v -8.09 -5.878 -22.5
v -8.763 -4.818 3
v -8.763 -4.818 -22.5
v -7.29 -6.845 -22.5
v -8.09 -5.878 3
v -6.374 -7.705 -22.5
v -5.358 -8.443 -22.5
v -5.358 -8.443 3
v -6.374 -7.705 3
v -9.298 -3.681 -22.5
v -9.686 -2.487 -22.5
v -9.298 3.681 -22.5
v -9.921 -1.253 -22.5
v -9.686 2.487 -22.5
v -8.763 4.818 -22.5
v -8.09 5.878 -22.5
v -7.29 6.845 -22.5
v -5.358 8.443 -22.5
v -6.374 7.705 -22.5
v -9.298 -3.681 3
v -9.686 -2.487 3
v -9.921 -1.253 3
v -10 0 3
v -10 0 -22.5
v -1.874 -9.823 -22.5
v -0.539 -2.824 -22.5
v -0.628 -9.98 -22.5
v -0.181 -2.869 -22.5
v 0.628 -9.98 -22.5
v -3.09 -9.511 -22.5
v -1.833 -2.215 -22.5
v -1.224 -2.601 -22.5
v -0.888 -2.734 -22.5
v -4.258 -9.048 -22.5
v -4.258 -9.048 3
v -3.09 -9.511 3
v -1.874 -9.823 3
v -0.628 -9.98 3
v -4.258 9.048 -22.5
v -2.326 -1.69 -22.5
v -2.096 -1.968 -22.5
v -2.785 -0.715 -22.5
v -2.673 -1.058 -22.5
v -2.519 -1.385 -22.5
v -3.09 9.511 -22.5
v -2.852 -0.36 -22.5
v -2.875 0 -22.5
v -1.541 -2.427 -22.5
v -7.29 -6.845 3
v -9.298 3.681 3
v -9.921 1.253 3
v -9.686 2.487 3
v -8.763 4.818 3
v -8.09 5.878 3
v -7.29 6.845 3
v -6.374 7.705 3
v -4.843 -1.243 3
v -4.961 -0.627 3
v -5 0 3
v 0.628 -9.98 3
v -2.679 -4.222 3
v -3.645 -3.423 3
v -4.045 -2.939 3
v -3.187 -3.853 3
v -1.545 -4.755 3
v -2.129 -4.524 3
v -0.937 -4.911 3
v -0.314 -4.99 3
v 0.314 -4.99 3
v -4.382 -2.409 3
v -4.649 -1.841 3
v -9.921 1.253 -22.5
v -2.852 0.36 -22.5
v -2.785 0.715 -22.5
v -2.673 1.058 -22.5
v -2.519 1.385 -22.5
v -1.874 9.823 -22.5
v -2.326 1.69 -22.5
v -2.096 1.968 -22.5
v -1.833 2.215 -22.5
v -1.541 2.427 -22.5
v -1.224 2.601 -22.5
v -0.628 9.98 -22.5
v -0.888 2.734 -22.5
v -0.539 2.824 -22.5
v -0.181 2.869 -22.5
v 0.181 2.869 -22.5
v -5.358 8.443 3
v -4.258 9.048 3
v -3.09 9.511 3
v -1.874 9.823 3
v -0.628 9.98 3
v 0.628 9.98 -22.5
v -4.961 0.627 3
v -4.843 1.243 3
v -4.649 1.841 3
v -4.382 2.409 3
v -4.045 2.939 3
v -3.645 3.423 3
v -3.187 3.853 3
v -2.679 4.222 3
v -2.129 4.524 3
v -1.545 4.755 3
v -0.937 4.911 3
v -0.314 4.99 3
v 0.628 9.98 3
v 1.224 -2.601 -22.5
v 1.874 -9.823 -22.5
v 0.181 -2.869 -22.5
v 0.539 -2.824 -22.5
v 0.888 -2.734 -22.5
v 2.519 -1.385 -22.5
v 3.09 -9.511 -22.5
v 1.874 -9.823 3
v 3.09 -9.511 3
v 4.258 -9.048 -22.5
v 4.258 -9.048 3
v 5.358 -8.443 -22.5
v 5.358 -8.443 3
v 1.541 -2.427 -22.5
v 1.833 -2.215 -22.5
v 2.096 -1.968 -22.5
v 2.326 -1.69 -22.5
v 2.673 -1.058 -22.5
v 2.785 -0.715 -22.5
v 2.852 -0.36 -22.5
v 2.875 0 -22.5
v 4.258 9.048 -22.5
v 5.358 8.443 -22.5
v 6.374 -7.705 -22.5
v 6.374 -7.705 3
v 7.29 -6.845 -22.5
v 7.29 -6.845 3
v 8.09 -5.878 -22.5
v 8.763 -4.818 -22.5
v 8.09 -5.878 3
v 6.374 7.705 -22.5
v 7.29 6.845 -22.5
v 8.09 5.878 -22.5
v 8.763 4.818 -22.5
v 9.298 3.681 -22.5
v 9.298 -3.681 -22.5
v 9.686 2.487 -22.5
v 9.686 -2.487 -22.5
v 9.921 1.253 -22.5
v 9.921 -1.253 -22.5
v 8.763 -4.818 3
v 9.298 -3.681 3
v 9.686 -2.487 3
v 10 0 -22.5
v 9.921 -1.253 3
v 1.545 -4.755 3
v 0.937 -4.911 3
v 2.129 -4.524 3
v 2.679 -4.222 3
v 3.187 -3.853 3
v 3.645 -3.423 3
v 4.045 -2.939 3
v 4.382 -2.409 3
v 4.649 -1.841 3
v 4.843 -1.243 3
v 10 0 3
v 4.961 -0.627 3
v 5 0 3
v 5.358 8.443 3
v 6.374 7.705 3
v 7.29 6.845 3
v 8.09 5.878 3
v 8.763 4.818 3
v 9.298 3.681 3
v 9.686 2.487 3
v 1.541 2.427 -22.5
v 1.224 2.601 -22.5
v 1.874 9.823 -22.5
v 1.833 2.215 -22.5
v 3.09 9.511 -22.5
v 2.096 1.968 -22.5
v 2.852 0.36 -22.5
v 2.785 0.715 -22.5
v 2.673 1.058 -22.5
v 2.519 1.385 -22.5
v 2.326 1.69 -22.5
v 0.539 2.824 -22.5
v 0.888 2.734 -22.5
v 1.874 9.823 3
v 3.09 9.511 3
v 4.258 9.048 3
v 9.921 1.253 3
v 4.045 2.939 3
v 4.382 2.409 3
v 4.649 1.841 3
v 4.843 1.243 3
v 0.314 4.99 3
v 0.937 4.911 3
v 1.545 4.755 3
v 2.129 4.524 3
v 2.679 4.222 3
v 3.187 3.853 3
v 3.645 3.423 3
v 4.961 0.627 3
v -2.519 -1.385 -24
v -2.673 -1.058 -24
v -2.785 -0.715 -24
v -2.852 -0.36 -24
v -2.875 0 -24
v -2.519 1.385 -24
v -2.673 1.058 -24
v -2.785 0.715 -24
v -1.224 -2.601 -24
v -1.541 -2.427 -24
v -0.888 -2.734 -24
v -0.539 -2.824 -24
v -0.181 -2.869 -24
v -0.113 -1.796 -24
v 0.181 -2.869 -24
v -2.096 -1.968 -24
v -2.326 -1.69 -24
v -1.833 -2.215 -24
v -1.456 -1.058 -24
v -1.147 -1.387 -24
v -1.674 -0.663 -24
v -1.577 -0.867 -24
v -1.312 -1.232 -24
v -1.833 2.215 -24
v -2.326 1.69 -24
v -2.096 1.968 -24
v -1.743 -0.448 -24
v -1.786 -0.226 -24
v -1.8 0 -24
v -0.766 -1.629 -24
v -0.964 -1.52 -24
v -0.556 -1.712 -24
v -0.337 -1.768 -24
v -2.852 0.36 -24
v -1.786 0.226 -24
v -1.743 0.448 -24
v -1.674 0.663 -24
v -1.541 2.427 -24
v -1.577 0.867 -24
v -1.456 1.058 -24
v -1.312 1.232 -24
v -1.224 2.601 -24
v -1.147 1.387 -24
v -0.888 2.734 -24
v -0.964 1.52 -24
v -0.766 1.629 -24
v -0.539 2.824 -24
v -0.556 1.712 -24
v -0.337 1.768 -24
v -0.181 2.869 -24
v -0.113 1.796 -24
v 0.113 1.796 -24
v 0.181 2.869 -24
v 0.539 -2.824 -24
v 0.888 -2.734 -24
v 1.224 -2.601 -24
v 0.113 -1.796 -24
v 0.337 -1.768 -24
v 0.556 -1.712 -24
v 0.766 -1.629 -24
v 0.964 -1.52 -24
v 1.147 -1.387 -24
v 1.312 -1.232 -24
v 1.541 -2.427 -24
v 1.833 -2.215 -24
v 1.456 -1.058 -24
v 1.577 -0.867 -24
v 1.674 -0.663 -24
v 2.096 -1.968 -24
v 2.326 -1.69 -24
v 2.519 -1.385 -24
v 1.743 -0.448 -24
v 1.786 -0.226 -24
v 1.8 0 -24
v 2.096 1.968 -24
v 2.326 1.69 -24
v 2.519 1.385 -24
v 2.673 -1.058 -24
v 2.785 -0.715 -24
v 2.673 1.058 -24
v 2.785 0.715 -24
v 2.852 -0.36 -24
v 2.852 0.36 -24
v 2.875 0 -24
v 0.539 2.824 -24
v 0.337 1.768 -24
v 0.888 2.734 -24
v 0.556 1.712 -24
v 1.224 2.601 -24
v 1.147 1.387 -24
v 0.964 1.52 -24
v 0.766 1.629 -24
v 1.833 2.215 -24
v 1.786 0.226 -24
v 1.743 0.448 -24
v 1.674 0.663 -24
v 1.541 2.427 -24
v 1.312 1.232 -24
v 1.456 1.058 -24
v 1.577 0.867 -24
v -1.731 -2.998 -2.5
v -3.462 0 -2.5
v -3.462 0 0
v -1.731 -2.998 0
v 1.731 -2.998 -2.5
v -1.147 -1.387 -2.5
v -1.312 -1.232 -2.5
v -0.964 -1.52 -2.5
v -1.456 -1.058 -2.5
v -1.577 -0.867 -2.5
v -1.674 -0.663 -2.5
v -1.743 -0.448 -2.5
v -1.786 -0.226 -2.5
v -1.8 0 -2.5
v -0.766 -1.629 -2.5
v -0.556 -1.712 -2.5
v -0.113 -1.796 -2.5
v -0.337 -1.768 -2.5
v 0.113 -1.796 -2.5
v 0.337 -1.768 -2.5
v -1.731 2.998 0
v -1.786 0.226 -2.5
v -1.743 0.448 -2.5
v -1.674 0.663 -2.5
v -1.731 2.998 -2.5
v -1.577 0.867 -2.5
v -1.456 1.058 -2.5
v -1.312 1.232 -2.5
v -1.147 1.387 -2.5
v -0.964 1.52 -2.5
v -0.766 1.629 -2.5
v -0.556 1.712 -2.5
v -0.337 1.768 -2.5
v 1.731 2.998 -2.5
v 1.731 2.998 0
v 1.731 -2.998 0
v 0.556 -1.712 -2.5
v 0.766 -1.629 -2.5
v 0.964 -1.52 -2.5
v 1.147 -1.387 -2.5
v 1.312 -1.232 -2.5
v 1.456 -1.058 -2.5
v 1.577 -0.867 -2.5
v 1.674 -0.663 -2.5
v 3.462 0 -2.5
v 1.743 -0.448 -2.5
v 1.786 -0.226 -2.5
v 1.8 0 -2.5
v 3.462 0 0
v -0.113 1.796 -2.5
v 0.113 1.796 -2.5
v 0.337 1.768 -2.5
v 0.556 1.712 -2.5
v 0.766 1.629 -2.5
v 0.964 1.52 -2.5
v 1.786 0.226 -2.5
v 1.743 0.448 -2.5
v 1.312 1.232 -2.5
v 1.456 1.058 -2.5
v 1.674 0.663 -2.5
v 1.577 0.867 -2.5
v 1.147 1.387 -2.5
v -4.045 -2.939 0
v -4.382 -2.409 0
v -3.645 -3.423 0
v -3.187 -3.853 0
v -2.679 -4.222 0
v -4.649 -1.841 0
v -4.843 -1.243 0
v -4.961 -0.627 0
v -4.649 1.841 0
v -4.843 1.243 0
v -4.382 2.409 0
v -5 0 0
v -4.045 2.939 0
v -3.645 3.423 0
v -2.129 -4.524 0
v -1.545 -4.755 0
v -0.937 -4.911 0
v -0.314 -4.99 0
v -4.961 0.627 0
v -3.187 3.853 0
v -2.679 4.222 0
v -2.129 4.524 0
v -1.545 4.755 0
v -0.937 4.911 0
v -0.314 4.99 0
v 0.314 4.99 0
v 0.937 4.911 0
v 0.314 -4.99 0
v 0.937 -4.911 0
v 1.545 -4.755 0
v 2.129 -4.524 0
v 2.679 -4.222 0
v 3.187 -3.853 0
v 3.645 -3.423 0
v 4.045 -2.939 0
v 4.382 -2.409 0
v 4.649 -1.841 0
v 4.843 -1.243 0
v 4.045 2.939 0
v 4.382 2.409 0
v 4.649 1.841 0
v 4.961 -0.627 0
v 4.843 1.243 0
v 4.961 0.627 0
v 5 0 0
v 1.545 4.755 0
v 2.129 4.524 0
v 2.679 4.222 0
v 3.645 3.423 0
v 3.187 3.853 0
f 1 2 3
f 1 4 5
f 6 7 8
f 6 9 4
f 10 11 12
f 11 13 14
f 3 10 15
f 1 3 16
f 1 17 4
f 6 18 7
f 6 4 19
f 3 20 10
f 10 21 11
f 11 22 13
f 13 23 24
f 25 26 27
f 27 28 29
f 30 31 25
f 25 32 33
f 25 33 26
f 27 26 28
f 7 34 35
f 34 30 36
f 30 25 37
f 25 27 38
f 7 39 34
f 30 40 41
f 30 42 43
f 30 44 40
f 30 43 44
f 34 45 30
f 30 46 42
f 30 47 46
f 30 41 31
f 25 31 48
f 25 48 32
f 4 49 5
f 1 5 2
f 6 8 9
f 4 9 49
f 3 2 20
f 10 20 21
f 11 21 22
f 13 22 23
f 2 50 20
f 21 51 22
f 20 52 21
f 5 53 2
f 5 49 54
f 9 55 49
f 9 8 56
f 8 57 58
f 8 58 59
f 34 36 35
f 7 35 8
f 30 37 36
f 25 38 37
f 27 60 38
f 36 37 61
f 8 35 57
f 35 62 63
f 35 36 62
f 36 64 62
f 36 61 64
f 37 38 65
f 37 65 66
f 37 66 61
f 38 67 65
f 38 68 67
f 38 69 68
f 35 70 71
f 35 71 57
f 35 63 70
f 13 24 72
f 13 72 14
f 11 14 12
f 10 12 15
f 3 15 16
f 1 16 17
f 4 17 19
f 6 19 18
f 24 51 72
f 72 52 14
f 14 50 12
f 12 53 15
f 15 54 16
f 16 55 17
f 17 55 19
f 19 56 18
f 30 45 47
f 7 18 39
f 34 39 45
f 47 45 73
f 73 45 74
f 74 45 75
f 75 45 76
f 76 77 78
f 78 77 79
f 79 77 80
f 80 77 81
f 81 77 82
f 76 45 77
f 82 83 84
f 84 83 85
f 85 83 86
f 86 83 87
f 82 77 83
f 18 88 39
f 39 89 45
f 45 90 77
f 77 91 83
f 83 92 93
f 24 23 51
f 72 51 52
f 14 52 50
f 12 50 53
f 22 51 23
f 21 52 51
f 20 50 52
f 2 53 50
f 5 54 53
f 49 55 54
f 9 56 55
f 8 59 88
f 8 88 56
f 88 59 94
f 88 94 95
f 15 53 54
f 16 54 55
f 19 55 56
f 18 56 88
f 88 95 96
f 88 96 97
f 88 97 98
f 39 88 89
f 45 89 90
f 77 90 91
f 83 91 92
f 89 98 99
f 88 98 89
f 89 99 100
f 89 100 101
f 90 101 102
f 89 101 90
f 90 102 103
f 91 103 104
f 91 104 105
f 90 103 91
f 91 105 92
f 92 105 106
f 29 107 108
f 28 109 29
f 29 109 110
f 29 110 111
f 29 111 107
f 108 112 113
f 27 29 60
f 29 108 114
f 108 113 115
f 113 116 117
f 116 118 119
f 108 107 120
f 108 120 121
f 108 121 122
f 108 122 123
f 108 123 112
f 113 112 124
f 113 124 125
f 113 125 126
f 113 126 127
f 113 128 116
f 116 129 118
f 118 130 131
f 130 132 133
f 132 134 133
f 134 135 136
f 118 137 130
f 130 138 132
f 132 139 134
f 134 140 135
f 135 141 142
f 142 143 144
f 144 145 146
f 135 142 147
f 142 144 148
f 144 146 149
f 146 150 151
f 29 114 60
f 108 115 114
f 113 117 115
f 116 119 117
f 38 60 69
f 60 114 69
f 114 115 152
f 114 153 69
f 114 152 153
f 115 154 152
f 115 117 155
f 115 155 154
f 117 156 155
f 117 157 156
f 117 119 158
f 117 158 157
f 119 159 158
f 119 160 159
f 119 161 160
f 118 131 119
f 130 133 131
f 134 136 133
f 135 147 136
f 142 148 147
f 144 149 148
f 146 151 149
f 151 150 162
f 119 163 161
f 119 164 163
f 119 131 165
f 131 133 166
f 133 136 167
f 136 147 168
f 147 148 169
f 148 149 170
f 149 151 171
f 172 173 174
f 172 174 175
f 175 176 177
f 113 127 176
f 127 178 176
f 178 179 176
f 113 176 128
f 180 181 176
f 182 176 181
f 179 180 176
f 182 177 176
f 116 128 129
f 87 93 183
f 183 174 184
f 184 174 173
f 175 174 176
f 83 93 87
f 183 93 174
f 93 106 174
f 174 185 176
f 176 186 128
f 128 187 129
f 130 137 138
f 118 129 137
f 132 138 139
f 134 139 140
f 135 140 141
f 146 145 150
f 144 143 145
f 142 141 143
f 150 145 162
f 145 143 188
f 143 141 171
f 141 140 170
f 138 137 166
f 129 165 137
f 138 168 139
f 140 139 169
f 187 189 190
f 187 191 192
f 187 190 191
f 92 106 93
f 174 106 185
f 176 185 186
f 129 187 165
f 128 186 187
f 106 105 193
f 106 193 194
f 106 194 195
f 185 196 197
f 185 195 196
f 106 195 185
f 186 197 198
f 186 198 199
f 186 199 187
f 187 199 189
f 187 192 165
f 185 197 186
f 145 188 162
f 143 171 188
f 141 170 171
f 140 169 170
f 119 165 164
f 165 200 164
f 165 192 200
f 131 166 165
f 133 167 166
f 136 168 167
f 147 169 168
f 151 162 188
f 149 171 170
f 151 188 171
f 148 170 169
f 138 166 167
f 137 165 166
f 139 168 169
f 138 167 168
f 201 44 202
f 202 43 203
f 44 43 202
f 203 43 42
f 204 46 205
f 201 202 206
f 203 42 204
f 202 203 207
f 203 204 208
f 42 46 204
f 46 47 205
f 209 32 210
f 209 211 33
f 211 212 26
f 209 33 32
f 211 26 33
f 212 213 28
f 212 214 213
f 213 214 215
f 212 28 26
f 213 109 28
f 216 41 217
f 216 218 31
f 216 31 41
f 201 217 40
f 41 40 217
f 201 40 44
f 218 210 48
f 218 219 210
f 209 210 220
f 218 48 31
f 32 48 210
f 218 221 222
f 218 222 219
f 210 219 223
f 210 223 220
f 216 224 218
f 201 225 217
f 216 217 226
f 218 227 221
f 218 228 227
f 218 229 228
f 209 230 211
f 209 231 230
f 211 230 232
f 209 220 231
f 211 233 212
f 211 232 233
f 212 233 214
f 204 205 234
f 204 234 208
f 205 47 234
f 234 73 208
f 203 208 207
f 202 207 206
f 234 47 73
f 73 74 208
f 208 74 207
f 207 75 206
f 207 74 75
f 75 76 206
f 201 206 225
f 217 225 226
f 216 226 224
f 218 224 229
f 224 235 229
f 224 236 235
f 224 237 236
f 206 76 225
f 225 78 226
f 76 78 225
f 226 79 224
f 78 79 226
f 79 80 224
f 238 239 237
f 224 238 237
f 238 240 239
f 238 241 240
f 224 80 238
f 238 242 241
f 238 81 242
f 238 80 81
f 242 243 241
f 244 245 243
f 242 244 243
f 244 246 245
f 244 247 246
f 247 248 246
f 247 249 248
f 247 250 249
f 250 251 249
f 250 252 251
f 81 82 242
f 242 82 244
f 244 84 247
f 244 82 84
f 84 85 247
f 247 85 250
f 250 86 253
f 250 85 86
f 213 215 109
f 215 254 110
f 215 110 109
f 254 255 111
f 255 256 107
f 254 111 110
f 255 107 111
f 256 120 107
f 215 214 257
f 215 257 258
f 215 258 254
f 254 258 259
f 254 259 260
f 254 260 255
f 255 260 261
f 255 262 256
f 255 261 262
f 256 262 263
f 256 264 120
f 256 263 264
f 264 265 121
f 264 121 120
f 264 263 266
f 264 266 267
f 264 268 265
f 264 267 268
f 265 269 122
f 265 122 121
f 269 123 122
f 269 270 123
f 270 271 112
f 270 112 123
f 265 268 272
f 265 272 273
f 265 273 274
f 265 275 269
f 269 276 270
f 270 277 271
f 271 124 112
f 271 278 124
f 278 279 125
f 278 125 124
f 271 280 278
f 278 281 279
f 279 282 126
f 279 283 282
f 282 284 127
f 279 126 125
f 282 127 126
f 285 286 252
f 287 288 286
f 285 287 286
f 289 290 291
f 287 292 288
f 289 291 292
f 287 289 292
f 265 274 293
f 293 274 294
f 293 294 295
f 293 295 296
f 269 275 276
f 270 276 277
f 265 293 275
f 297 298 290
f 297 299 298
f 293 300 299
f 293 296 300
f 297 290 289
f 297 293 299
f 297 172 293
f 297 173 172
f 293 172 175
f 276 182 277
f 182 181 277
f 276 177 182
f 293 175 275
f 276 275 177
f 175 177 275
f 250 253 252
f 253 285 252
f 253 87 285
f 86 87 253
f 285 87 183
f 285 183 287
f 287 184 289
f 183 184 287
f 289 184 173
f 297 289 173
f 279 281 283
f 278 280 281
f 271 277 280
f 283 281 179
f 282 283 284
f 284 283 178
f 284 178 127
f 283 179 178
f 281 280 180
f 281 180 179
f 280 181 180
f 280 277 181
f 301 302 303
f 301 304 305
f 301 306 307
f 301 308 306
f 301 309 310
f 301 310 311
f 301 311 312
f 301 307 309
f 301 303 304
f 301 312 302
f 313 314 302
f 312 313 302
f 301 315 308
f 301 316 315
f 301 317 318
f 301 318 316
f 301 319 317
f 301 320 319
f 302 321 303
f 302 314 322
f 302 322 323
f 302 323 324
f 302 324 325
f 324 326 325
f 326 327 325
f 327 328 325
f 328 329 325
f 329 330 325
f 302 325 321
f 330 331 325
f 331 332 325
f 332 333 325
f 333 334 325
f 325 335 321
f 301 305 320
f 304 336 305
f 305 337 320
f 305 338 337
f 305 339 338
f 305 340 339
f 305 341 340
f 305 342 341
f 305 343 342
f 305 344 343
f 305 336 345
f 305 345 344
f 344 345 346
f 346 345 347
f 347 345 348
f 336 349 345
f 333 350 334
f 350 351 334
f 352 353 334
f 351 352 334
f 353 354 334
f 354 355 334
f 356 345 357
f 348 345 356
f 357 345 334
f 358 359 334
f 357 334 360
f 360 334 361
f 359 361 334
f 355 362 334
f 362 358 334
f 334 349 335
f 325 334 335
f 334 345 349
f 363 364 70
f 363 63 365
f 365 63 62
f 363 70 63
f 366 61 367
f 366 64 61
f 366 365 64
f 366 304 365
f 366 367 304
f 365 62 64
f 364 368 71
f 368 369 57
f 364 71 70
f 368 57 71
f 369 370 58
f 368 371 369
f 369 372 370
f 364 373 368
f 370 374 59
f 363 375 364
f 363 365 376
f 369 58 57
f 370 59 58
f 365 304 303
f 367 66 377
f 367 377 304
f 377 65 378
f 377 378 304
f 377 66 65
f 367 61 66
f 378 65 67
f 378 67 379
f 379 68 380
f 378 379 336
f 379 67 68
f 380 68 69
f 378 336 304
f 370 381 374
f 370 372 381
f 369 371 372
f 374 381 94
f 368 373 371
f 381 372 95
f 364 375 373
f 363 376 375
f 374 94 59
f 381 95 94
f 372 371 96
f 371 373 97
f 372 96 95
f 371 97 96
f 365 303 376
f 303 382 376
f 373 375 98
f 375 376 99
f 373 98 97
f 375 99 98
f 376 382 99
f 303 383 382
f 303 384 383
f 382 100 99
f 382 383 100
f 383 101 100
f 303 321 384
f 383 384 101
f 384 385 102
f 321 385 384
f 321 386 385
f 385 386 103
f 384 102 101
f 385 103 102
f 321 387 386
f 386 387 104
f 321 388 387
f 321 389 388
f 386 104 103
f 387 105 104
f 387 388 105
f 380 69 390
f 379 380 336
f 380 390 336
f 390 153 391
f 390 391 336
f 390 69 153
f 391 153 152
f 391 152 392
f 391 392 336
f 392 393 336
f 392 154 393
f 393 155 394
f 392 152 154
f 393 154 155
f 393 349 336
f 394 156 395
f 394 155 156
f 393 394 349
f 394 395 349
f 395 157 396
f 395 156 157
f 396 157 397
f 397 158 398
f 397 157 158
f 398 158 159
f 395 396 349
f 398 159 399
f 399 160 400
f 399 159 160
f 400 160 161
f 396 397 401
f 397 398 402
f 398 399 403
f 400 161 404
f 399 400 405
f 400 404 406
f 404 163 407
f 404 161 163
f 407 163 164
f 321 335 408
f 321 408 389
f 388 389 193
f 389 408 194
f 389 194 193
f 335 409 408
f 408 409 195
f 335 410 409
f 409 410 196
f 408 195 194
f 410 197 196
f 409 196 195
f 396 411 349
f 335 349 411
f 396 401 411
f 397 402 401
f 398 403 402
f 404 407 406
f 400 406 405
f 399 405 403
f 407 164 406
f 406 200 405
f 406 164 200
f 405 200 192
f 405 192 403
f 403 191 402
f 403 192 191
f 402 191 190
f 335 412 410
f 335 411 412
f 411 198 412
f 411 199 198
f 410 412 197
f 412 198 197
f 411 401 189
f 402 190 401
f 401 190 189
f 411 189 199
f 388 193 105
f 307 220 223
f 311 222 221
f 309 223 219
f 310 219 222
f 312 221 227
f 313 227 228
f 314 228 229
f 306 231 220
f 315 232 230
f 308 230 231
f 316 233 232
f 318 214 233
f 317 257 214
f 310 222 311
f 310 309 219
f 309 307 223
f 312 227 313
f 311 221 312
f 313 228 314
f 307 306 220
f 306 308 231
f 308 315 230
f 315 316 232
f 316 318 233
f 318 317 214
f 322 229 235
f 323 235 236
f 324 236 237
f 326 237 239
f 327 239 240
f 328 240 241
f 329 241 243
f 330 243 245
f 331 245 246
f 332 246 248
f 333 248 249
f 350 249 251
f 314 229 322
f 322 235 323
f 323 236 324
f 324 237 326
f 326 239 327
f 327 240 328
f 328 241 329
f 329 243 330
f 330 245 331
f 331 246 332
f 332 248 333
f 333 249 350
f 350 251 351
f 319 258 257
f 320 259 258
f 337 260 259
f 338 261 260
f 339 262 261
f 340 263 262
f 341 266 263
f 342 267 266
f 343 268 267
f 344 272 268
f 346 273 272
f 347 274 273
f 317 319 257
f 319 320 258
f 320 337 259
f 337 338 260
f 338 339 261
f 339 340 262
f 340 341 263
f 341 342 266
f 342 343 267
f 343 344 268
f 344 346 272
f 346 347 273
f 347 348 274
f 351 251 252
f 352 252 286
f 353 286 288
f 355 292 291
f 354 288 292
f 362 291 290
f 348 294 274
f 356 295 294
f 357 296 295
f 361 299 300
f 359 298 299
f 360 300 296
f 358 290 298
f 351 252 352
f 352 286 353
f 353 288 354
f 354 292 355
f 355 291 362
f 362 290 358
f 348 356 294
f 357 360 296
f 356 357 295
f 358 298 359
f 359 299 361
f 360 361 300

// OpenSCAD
$fn = 50;

difference() {
	union() {
		translate(v = [0, 0, -22.5]) {
			cylinder(h = 25.5, r = 10.0);
		}
		#translate(v = [0, 0, -24.0]) {
			cylinder(h = 24, r = 2.875);
		}
	}
	union() {
		translate(v = [0, 0, 0]) {
			rotate(a = [0, 0, 0]) {
				difference() {
					union() {
						translate(v = [0, 0, -2.5]) {
							linear_extrude(height = 2.5) {
								polygon(points = [[3.4619999999999997, 0.0], [1.7310000000000003, 2.9981799479017264], [-1.7309999999999992, 2.9981799479017264], [-3.4619999999999997, 4.2397272186481365e-16], [-1.7310000000000014, -2.998179947901726], [1.7309999999999977, -2.9981799479017277]]);
							}
						}
					}
					union();
				}
			}
		}
		#cylinder(h = 3, r = 5.0);
		#translate(v = [0, 0, -100.0]) {
			cylinder(h = 200, r = 1.8);
		}
	}
}
